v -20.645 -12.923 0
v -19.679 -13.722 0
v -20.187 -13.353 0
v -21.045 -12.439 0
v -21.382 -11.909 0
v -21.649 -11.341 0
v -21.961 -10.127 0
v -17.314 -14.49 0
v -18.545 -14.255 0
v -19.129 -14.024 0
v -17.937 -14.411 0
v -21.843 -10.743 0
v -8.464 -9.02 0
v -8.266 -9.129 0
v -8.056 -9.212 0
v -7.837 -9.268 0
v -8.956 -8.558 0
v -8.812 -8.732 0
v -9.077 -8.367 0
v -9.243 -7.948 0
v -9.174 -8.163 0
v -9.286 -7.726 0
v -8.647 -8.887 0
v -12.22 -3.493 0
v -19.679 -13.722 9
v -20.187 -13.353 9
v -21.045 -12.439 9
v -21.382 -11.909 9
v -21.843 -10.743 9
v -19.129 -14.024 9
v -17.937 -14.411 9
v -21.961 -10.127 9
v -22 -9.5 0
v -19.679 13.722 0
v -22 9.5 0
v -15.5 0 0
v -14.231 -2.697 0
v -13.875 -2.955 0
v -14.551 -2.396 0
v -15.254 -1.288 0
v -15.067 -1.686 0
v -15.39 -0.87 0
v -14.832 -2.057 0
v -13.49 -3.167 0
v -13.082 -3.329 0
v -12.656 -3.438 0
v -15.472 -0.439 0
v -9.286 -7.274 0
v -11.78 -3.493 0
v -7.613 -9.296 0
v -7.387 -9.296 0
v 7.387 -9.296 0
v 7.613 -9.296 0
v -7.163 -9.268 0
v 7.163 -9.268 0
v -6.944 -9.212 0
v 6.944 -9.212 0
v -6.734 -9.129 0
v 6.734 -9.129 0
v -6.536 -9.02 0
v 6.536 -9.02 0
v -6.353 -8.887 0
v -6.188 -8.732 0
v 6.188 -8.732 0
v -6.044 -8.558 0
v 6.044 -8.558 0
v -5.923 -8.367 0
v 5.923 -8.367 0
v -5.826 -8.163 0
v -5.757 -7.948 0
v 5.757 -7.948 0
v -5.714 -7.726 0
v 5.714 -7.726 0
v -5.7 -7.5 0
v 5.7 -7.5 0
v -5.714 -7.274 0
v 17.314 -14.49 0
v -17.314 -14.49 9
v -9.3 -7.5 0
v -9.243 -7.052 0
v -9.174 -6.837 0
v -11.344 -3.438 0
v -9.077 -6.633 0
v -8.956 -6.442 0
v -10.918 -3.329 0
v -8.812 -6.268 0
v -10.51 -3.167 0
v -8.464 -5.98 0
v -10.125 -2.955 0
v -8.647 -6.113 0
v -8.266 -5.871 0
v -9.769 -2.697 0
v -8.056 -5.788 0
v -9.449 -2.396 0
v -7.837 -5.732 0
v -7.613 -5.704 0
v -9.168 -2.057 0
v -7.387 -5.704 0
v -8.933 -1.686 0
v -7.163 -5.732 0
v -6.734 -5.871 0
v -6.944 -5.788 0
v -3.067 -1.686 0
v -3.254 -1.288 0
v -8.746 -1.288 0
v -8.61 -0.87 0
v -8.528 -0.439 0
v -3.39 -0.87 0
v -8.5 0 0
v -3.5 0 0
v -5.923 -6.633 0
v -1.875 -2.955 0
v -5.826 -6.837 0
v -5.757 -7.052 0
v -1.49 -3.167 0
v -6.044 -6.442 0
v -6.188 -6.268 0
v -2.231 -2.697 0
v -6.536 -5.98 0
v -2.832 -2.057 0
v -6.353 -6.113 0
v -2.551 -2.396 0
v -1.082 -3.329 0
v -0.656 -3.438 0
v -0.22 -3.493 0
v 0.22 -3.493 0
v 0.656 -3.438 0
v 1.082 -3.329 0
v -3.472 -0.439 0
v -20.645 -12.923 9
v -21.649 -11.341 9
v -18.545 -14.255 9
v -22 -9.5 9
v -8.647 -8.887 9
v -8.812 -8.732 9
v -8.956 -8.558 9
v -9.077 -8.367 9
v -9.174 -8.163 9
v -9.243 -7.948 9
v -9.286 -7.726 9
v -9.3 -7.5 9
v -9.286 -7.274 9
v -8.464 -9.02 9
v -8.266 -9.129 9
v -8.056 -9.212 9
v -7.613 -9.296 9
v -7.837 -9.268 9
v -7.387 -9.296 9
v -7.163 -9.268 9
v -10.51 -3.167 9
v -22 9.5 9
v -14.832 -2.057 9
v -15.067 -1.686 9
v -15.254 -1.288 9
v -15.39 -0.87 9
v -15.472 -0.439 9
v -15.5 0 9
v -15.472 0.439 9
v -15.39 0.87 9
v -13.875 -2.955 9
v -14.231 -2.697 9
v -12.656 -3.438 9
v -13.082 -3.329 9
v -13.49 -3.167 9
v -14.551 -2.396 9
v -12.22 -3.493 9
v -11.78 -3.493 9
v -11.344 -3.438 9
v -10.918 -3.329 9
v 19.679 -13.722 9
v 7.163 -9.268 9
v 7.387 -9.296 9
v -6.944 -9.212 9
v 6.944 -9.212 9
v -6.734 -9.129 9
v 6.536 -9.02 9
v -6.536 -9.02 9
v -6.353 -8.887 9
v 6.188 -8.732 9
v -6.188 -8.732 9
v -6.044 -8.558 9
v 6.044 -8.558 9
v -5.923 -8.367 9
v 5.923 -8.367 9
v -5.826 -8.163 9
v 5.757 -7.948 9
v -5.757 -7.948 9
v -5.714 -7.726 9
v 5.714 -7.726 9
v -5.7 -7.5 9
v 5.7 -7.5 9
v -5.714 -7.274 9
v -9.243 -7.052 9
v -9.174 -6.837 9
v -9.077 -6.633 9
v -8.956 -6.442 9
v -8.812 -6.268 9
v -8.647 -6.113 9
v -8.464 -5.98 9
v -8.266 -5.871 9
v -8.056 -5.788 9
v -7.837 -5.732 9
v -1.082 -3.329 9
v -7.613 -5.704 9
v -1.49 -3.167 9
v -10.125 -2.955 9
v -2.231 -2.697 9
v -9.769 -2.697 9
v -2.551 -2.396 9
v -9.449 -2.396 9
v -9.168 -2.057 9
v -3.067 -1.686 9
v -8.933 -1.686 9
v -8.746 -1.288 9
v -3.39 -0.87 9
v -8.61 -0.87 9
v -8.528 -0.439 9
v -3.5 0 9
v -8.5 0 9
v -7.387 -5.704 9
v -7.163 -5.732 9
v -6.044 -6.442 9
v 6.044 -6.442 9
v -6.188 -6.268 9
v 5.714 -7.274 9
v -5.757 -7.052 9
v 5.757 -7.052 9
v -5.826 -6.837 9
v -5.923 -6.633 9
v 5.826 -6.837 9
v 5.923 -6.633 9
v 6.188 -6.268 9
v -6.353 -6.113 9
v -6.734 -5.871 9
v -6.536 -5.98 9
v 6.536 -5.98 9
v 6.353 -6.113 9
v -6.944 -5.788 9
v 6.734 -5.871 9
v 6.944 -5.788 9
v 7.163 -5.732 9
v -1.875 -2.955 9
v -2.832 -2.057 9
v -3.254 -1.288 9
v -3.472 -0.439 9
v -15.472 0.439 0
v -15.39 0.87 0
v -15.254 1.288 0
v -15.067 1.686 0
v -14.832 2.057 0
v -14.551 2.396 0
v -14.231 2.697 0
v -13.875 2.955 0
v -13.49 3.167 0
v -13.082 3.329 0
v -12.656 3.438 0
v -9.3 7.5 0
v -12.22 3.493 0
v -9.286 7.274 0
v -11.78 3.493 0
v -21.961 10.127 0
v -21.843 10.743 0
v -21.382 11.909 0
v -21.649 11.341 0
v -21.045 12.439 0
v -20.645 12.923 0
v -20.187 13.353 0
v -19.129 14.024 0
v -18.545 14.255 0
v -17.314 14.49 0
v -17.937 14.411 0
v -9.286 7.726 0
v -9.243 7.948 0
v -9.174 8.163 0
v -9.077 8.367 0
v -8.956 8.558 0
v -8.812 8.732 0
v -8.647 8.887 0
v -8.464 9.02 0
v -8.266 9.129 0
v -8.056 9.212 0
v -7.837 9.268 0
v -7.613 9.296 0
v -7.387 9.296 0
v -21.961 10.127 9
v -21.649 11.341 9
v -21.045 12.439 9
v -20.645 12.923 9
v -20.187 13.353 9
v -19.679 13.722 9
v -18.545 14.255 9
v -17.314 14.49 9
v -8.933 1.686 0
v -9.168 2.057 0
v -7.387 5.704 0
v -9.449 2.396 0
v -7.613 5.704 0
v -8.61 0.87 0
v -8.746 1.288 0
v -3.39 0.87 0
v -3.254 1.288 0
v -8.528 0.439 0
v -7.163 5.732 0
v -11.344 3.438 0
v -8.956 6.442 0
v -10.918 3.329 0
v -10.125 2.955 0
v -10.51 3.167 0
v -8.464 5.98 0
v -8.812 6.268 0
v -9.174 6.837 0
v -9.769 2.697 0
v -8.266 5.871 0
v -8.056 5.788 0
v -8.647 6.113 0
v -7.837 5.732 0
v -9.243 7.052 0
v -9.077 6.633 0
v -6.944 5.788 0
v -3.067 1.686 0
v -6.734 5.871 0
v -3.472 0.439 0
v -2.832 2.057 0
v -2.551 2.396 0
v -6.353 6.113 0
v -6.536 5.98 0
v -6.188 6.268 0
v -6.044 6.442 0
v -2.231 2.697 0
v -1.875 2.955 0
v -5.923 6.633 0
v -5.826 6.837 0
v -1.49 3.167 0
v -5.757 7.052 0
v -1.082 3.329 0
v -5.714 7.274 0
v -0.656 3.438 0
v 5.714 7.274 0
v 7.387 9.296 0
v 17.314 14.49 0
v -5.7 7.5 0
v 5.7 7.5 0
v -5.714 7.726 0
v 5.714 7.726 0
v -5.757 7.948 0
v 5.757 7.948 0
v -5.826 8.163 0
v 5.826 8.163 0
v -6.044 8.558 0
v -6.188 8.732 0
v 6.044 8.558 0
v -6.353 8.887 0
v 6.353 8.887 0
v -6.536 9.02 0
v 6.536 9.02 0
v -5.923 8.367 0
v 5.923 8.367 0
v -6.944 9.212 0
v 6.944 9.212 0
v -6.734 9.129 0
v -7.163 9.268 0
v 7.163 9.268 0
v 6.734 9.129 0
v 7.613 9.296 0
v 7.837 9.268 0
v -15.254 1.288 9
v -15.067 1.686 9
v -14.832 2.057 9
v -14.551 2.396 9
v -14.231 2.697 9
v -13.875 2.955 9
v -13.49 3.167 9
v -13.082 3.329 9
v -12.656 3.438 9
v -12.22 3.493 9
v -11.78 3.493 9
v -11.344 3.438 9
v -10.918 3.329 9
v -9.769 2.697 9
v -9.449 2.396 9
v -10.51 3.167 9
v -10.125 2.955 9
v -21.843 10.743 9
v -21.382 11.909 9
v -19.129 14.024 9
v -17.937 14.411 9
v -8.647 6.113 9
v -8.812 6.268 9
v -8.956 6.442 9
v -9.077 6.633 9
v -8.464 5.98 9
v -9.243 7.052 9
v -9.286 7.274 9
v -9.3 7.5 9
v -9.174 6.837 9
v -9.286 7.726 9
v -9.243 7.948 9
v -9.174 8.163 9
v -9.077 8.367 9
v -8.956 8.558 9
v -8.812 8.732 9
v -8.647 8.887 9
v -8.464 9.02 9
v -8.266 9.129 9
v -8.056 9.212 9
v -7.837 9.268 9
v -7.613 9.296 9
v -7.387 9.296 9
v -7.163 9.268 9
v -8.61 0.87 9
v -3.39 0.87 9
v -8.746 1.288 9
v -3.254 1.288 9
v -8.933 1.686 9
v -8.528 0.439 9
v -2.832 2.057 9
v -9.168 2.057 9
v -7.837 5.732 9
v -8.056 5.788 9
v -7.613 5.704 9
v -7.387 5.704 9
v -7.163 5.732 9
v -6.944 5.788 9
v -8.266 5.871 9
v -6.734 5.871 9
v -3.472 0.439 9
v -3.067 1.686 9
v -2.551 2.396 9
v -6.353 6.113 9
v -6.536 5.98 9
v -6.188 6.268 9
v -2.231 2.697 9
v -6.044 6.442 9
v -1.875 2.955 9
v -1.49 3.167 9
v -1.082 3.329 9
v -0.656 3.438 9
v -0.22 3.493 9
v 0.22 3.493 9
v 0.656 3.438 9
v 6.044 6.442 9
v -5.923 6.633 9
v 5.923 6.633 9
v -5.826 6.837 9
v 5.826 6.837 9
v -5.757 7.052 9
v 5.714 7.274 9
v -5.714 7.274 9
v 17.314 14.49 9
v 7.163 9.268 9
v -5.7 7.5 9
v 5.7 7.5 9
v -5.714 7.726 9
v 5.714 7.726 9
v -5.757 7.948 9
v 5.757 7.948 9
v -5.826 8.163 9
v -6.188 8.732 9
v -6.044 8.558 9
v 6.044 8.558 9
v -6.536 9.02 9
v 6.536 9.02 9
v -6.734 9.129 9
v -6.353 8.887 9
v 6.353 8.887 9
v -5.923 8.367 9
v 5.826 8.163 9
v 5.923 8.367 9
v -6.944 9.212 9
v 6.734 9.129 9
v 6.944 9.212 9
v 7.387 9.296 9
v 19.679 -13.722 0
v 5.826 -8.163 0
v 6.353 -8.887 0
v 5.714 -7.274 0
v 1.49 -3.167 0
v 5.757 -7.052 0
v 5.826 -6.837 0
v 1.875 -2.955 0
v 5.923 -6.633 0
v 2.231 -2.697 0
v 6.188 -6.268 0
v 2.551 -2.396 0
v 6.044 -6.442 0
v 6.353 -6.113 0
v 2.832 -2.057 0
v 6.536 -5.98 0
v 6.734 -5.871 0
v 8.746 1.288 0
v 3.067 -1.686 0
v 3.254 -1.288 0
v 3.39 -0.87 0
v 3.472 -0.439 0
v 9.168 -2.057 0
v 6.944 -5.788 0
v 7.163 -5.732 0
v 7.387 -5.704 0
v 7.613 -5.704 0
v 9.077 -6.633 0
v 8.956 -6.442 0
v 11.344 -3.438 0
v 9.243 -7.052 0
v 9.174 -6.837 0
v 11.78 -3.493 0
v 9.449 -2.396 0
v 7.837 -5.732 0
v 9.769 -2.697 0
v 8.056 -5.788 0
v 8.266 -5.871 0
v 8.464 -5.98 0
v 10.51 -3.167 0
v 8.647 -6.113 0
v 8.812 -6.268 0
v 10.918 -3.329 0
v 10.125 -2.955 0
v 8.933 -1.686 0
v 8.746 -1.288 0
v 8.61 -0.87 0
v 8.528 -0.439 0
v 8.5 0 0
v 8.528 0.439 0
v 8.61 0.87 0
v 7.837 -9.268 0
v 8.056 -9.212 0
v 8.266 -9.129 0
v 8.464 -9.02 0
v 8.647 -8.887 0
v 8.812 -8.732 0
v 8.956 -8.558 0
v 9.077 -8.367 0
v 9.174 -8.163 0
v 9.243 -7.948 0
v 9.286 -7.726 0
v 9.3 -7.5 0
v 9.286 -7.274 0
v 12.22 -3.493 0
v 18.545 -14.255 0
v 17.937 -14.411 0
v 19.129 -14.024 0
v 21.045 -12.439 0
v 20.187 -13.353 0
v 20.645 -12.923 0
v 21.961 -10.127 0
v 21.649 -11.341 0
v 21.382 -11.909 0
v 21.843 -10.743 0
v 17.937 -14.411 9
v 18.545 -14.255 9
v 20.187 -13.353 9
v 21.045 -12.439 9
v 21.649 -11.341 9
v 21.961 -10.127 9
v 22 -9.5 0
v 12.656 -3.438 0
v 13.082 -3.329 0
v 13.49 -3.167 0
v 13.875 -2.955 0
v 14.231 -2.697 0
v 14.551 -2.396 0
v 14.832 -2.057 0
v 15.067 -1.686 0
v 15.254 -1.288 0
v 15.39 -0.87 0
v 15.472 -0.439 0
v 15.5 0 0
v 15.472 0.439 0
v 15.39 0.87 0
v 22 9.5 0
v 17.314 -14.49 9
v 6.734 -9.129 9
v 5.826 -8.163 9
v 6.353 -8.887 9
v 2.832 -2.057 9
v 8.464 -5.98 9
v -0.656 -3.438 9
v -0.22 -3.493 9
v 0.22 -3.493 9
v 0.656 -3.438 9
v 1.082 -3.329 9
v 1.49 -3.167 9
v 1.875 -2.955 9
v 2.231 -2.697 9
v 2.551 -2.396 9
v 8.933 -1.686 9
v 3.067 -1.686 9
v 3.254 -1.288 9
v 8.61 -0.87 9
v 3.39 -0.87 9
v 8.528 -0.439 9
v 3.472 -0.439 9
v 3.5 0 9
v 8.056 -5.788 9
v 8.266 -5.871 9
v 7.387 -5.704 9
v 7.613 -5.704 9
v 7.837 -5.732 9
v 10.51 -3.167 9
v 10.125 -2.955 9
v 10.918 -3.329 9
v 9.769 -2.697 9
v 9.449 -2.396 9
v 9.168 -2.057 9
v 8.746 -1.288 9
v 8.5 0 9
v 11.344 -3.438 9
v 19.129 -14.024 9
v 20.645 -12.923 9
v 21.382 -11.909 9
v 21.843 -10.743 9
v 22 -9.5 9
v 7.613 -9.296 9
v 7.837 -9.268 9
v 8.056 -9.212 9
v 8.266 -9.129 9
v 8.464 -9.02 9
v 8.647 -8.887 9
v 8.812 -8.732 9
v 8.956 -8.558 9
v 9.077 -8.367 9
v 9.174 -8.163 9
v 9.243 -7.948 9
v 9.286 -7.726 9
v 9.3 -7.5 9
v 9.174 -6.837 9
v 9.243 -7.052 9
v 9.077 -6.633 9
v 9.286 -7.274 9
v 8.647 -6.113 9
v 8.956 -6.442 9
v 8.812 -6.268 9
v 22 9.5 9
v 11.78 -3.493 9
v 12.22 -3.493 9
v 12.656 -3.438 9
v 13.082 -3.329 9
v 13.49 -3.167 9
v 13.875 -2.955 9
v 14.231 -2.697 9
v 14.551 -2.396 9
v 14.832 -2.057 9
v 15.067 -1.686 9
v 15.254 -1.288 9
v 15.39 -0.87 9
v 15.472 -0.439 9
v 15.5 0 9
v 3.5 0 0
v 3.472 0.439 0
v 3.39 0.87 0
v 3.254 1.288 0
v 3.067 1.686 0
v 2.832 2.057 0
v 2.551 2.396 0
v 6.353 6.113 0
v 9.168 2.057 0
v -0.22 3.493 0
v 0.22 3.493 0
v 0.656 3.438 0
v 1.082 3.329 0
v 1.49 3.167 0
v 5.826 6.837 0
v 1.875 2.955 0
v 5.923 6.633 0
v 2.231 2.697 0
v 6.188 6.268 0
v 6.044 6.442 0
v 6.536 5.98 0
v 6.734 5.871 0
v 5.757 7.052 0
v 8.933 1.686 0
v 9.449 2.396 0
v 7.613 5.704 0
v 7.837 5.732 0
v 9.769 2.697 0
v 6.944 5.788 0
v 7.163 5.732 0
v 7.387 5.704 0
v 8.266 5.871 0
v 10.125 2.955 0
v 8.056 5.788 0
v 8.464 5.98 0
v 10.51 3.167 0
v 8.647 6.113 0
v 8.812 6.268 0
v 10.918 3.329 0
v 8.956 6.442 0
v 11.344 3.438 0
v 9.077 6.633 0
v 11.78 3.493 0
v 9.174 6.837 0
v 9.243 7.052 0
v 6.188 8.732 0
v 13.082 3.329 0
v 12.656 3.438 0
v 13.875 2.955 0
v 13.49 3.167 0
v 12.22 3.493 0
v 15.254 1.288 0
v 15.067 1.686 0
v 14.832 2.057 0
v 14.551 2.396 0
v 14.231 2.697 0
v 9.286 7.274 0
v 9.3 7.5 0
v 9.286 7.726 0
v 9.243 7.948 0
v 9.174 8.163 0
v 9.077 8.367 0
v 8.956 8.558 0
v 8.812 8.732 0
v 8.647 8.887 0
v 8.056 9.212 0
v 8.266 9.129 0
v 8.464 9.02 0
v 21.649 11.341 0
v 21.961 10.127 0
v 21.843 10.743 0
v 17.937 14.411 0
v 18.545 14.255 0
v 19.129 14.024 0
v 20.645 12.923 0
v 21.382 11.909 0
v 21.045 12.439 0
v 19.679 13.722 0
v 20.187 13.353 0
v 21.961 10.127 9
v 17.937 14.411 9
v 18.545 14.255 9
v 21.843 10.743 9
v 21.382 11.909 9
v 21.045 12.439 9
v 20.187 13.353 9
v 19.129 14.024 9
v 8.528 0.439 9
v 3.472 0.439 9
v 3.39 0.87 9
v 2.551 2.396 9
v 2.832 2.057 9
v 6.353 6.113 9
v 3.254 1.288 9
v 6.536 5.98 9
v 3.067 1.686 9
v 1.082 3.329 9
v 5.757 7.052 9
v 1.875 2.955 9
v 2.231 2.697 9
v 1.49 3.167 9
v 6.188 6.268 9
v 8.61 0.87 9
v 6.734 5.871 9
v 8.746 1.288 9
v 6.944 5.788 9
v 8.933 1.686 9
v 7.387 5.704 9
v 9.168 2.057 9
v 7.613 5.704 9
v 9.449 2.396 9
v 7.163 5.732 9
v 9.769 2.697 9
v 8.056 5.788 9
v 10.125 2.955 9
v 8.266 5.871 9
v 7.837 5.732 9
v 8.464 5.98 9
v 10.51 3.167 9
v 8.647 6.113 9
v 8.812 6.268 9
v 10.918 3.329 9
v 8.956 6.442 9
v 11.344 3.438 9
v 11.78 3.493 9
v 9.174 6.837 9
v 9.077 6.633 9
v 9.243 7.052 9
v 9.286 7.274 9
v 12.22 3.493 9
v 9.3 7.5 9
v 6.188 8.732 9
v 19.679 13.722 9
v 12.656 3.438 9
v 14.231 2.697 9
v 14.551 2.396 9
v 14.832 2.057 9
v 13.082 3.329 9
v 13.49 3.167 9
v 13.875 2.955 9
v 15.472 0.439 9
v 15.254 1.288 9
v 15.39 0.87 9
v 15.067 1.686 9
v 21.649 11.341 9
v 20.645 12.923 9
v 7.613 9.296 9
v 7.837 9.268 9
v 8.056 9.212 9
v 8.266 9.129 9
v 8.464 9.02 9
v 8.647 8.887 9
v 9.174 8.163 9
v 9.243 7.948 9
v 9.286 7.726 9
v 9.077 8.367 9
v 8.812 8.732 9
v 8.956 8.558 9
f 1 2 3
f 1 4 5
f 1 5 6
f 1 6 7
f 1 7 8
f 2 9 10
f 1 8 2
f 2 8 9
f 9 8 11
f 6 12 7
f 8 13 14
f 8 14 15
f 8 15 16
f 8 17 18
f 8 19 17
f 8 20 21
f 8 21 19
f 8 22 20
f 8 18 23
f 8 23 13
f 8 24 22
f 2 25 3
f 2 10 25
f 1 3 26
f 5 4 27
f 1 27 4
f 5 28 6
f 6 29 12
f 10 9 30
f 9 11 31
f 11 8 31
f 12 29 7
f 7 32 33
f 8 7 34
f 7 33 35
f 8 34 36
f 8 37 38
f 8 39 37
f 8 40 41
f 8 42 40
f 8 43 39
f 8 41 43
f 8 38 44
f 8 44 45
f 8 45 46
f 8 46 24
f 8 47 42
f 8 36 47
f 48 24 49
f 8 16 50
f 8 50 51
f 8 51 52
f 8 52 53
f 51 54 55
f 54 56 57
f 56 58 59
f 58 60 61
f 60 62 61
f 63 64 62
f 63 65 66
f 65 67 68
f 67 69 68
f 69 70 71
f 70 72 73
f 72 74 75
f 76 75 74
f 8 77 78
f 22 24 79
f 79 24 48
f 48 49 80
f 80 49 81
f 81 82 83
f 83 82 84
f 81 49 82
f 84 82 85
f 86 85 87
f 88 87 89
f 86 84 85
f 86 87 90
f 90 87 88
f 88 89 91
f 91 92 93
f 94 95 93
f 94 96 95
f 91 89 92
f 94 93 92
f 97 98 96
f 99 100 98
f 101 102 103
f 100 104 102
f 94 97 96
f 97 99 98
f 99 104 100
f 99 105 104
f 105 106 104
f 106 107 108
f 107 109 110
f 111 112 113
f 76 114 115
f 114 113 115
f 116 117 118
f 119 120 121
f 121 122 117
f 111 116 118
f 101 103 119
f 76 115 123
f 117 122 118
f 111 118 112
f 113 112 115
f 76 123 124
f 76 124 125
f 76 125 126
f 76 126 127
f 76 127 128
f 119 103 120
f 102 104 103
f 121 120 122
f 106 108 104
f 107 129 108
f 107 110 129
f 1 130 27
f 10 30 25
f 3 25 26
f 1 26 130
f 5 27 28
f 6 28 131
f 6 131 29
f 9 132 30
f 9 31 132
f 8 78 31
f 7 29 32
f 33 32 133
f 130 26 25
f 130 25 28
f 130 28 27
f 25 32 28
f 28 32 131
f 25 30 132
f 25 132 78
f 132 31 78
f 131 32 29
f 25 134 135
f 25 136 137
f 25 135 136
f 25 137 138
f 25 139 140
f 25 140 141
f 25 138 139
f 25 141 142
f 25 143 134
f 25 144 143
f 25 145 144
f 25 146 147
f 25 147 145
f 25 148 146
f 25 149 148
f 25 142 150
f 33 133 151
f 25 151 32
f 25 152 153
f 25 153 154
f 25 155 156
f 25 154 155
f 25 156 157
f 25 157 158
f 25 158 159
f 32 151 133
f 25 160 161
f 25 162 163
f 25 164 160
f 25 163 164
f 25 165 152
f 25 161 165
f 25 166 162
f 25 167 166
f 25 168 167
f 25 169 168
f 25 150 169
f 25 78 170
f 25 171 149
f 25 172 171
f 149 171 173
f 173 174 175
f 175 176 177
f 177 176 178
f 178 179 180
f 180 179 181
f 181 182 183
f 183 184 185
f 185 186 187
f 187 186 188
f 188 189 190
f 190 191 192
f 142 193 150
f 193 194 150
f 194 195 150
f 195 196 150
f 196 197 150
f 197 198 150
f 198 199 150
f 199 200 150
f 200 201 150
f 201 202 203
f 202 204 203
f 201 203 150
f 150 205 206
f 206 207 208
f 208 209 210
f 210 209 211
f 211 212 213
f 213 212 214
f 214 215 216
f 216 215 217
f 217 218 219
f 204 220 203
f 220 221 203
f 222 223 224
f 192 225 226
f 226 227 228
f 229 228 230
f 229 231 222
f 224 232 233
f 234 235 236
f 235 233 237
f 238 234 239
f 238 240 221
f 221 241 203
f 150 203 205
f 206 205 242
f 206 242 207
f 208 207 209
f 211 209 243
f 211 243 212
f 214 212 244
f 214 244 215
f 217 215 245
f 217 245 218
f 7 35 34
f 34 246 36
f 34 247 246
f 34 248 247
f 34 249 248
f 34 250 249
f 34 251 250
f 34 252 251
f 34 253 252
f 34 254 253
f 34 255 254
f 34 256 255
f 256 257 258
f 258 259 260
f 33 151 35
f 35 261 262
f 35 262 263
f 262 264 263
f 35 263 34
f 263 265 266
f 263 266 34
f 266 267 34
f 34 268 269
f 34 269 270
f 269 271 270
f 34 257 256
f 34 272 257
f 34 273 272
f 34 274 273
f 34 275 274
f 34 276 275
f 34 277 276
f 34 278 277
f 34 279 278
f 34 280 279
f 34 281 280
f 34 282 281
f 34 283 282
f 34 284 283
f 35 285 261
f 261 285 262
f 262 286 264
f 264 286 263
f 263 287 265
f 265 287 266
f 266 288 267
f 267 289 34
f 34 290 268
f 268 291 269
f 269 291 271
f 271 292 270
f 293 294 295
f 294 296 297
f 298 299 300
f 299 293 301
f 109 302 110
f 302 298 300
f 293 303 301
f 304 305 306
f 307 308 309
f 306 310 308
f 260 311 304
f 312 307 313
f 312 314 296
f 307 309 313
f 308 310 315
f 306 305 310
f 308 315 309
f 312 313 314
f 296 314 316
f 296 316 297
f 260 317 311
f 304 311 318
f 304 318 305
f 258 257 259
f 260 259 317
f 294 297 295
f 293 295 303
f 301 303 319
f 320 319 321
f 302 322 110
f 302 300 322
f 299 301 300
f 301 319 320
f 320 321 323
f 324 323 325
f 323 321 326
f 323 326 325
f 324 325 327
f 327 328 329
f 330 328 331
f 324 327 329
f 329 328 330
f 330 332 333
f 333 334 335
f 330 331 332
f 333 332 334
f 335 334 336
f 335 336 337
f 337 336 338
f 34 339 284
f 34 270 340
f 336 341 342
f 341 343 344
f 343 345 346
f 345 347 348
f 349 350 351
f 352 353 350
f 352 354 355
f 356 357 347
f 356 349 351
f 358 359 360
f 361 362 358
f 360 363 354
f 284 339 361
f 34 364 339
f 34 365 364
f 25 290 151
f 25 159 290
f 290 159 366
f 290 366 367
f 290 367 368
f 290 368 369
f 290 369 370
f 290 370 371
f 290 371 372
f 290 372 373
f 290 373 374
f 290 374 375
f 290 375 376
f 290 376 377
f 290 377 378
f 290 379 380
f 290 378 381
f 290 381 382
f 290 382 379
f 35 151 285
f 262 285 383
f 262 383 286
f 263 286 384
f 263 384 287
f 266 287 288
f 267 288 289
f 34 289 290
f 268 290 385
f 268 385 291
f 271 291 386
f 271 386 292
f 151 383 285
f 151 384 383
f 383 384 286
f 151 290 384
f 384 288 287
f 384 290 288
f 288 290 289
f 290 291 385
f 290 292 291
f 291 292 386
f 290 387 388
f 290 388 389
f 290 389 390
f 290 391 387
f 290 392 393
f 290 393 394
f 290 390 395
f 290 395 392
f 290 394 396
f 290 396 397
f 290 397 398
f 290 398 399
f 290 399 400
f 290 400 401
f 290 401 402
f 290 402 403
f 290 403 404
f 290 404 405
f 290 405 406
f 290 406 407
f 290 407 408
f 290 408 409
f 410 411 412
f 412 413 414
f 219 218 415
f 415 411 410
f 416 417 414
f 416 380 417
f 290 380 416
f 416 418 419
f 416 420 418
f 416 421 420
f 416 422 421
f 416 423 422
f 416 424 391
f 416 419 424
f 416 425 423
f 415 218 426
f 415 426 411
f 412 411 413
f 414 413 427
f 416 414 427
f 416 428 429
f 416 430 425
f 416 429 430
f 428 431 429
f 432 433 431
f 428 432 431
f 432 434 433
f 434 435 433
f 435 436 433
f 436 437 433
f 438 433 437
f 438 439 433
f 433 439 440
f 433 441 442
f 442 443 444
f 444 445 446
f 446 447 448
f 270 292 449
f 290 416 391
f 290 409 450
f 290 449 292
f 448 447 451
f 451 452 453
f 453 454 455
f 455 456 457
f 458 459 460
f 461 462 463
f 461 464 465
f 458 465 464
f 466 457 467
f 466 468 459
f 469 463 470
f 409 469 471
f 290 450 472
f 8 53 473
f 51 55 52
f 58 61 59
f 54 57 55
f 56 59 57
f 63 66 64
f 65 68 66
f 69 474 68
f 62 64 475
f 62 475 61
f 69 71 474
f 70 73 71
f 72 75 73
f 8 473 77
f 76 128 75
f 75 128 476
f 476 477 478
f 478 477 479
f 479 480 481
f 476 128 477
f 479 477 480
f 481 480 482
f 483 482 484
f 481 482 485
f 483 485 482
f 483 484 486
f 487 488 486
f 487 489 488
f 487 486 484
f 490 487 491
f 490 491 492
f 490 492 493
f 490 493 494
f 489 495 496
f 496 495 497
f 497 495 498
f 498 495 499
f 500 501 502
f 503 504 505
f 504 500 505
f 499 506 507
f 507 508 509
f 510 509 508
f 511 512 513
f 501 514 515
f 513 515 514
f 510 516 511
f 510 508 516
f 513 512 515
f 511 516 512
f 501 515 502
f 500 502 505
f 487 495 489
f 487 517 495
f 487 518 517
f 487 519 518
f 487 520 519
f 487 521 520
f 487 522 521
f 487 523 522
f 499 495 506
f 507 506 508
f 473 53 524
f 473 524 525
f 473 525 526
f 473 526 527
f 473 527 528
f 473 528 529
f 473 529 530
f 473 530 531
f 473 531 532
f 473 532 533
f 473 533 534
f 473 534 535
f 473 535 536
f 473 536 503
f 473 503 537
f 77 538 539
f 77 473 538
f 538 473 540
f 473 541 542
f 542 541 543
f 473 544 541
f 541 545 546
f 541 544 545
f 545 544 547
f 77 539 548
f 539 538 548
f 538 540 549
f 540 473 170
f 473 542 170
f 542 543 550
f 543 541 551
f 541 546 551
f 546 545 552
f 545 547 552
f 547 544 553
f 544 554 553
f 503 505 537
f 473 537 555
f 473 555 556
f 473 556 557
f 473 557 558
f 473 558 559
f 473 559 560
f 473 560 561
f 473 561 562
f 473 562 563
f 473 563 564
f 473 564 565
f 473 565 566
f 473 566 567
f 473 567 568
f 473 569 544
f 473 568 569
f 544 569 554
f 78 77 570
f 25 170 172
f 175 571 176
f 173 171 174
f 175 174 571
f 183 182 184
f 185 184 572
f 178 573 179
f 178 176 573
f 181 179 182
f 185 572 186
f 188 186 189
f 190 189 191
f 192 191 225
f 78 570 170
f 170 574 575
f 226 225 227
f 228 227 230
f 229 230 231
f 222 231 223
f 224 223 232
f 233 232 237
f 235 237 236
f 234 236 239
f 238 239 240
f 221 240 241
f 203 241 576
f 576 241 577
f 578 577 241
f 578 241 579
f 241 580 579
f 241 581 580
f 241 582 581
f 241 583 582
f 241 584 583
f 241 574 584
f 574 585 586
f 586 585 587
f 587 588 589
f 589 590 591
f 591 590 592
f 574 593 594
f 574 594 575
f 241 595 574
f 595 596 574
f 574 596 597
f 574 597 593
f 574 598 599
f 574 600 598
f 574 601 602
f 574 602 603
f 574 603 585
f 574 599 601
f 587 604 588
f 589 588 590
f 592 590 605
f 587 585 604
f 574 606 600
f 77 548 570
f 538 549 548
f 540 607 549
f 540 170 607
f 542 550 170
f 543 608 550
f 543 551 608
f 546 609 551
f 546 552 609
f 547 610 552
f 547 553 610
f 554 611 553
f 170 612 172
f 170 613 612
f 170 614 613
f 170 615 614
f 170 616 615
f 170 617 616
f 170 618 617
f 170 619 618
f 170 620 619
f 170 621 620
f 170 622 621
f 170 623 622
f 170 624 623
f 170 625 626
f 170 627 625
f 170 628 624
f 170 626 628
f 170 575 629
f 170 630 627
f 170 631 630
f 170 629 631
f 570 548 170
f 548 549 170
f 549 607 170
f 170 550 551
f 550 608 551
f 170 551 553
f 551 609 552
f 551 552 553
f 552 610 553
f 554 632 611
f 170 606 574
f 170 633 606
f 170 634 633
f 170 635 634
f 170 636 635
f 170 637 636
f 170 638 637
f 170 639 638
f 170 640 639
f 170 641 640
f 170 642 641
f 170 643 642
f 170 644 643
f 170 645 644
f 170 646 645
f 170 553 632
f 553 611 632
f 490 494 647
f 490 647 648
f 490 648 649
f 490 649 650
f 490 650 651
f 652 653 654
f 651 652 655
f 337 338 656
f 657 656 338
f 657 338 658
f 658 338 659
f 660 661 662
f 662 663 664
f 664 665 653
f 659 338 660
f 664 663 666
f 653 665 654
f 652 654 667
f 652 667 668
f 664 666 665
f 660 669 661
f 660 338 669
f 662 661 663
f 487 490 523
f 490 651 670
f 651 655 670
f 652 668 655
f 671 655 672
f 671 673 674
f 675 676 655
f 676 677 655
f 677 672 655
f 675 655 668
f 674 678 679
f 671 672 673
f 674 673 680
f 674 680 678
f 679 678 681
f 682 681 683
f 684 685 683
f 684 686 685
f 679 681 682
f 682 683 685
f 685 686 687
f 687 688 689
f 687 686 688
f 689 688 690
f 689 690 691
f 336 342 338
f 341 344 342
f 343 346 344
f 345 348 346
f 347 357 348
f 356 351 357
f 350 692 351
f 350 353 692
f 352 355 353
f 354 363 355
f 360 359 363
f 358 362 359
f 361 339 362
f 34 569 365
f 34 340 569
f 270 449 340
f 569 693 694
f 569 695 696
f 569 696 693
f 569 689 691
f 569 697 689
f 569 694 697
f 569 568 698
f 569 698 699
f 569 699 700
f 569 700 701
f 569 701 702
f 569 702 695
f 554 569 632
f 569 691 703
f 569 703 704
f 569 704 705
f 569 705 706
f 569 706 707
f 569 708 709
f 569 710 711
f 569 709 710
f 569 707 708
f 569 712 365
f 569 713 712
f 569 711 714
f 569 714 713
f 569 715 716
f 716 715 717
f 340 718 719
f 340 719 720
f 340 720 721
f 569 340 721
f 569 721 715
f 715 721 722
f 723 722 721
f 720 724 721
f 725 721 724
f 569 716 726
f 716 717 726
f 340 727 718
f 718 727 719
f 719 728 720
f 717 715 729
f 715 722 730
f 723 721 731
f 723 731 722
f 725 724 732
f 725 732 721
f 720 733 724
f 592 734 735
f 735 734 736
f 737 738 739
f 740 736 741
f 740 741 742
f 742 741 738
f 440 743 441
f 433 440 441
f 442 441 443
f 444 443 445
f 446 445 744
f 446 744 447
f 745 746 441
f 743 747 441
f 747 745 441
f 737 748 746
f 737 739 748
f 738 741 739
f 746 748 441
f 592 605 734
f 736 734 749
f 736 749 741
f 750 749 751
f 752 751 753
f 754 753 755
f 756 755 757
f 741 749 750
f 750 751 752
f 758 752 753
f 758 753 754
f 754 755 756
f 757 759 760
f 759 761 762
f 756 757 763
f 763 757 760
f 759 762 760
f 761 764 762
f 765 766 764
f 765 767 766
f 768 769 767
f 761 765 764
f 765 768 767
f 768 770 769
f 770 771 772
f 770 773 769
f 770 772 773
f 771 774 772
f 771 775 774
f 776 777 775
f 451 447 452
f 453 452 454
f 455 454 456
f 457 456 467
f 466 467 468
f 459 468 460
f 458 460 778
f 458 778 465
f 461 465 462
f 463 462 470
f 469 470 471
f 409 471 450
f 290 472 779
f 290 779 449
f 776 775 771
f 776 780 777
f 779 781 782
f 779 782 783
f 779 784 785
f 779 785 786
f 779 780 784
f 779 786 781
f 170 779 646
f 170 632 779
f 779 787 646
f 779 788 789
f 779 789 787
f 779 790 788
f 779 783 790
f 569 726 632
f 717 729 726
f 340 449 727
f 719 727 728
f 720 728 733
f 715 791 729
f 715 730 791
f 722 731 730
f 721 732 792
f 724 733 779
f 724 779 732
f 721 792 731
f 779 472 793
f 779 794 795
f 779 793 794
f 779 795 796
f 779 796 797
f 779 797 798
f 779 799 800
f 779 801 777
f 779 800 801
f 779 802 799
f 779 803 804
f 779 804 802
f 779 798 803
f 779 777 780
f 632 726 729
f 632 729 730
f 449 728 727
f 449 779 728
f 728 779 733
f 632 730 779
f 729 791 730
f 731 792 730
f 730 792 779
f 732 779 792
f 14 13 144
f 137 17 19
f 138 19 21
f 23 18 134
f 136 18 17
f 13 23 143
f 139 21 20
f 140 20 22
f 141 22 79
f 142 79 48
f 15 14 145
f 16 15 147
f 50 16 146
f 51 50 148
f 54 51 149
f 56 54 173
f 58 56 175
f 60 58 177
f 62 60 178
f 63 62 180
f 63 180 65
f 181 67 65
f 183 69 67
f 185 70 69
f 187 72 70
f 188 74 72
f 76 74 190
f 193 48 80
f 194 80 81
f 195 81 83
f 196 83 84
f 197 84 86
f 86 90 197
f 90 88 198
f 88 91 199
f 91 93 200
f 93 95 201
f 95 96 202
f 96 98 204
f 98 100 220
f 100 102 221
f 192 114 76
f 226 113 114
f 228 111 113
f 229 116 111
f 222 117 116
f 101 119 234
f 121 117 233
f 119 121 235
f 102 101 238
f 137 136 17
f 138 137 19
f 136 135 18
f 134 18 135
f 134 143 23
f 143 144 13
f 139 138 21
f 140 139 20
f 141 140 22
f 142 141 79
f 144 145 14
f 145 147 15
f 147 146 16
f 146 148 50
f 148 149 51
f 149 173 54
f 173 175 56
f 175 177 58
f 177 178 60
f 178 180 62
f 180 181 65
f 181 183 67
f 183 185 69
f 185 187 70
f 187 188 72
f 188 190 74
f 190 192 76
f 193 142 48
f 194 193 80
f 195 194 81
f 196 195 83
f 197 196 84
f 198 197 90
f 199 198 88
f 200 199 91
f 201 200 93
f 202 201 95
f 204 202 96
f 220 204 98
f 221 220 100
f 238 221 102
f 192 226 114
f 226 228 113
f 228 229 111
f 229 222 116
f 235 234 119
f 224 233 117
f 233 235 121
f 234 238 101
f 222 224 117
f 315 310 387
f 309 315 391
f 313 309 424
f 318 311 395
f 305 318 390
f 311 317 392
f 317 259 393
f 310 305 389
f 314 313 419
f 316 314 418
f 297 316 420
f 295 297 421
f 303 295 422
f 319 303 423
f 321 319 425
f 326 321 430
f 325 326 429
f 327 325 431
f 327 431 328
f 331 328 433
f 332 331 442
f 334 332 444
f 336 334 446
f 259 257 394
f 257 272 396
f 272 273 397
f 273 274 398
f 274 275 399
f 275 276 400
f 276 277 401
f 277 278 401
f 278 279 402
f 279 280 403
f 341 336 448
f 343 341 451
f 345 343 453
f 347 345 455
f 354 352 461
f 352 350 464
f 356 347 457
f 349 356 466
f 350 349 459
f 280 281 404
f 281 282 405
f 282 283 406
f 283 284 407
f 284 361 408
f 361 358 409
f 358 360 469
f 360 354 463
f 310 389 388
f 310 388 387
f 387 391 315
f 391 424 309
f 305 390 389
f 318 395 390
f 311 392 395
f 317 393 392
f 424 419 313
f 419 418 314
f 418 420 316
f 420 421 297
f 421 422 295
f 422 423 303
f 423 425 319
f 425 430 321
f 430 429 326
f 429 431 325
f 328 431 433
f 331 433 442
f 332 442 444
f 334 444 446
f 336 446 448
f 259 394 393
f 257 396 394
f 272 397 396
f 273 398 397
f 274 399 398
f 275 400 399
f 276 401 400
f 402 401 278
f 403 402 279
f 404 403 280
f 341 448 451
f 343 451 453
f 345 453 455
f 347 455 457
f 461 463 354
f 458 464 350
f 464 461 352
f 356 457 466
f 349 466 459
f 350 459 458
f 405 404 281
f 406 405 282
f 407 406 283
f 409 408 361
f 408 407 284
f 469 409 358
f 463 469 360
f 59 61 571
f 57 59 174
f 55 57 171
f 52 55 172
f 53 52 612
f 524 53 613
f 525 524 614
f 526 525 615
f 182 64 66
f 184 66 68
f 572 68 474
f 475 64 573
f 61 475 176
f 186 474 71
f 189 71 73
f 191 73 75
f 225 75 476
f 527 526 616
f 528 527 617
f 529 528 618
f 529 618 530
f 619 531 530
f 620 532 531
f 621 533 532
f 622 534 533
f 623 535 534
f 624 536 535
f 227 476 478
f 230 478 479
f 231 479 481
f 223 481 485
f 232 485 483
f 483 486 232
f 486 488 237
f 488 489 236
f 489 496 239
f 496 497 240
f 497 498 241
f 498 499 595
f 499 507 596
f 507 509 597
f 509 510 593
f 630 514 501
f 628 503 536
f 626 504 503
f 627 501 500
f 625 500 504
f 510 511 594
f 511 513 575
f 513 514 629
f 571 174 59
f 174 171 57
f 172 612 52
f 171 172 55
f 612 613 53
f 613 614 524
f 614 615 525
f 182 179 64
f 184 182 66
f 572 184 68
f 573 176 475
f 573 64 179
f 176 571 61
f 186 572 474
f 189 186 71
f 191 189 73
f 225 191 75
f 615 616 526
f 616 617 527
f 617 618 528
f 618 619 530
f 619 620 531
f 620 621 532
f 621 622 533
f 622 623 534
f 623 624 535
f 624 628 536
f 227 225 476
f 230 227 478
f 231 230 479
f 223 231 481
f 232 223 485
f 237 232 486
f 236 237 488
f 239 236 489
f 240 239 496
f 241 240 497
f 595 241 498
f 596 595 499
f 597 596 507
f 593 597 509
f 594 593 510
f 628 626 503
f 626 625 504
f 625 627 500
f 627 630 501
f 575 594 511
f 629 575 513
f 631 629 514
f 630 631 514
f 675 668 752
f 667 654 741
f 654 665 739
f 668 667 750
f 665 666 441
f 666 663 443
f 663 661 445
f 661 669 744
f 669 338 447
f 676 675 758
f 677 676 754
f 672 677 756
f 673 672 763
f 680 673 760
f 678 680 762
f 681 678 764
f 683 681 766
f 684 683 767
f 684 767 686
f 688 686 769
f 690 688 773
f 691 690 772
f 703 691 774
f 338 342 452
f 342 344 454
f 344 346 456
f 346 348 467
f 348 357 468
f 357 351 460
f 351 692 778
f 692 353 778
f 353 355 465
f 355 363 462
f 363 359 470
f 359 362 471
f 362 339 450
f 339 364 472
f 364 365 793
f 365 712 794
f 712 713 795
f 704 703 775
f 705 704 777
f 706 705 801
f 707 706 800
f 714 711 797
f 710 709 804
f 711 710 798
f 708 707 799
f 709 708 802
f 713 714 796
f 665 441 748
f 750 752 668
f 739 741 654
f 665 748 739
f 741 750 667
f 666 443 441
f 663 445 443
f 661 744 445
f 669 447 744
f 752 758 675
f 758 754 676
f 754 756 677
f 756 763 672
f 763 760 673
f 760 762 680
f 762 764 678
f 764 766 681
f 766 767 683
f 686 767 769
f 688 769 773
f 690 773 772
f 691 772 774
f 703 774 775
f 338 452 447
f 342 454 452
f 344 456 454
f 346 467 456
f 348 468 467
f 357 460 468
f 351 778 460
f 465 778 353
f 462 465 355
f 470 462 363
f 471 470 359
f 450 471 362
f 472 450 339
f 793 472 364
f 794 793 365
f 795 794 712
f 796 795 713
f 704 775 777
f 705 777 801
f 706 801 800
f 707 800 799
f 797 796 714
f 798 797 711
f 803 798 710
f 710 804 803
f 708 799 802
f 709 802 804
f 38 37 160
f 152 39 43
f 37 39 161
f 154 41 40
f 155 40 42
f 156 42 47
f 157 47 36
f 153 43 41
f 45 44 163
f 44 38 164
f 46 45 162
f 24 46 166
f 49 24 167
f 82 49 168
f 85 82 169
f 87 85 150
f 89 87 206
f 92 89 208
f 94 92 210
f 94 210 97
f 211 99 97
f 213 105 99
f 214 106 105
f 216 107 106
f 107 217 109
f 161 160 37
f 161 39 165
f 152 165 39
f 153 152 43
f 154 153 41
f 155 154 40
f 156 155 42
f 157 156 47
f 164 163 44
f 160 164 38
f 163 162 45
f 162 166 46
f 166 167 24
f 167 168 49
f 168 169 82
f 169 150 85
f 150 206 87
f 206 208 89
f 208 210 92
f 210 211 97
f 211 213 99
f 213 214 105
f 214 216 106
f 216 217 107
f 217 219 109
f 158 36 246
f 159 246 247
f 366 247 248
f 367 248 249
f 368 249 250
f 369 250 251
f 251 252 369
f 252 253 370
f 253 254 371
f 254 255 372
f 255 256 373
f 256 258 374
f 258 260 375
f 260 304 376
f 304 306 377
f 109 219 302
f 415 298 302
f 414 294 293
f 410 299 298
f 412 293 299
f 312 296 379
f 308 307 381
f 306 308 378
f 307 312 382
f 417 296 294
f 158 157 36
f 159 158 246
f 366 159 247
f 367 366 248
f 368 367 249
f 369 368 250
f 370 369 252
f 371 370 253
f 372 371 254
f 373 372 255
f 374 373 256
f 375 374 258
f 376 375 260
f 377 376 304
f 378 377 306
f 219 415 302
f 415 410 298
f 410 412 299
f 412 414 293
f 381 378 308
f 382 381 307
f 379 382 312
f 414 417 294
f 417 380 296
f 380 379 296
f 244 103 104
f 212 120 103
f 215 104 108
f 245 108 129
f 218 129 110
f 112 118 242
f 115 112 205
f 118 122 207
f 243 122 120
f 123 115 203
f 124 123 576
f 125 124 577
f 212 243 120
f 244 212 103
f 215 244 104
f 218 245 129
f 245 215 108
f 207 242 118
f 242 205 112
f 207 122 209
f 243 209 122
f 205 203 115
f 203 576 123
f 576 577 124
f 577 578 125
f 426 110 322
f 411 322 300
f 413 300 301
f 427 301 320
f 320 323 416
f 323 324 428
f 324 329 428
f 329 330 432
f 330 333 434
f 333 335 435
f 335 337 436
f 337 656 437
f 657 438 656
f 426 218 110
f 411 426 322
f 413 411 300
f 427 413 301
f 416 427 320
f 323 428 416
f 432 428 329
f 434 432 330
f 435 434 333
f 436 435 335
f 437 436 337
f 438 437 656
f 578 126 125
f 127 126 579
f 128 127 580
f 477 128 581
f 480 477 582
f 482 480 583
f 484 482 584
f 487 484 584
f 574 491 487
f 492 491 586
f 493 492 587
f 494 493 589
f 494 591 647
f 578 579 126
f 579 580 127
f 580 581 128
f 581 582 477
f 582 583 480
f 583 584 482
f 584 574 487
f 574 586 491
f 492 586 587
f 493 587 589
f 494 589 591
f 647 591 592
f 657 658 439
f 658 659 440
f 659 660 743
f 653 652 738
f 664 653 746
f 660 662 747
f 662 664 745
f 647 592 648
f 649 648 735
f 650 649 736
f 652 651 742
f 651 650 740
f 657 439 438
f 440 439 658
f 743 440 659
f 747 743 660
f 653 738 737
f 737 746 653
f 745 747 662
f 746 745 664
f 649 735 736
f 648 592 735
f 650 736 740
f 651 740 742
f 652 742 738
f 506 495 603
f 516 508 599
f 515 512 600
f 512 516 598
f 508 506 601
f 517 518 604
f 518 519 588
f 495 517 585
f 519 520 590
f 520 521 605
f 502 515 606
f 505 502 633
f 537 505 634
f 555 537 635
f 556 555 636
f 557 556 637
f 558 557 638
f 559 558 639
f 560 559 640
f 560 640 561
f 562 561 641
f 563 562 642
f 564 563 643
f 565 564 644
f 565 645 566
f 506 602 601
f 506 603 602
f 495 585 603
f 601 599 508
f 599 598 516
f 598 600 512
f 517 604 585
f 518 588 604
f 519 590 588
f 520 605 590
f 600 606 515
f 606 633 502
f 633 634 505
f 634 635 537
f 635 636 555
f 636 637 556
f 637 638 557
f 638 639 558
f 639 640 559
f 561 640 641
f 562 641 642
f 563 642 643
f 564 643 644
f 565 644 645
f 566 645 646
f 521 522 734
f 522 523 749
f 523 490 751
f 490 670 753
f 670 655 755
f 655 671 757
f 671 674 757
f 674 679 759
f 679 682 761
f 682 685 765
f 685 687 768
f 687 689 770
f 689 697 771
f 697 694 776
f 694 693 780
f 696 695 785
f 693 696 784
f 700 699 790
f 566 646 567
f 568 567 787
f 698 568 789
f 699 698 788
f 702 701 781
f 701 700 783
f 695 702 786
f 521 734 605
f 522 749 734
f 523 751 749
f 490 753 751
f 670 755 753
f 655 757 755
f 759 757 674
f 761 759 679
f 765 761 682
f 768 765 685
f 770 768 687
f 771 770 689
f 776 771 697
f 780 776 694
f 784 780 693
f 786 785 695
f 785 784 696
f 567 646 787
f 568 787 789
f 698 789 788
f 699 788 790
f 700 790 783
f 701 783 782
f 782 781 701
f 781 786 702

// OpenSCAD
$fn = 50;

difference() {
	union() {
		hull() {
			translate(v = [-17.0, 9.5, 0]) {
				cylinder(h = 9, r = 5);
			}
			translate(v = [17.0, 9.5, 0]) {
				cylinder(h = 9, r = 5);
			}
			translate(v = [-17.0, -9.5, 0]) {
				cylinder(h = 9, r = 5);
			}
			translate(v = [17.0, -9.5, 0]) {
				cylinder(h = 9, r = 5);
			}
		}
	}
	union() {
		translate(v = [-7.5, -7.5, 0]) {
			cylinder(h = 9, r = 1.8);
		}
		translate(v = [-7.5, 7.5, 0]) {
			cylinder(h = 9, r = 1.8);
		}
		translate(v = [7.5, -7.5, 0]) {
			cylinder(h = 9, r = 1.8);
		}
		translate(v = [7.5, 7.5, 0]) {
			cylinder(h = 9, r = 1.8);
		}
		translate(v = [-12.0, 0, 0.0]) {
			cylinder(h = 9, r = 3.5);
		}
		cylinder(h = 9, r = 3.5);
		translate(v = [12.0, 0, 0.0]) {
			cylinder(h = 9, r = 3.5);
		}
	}
}
